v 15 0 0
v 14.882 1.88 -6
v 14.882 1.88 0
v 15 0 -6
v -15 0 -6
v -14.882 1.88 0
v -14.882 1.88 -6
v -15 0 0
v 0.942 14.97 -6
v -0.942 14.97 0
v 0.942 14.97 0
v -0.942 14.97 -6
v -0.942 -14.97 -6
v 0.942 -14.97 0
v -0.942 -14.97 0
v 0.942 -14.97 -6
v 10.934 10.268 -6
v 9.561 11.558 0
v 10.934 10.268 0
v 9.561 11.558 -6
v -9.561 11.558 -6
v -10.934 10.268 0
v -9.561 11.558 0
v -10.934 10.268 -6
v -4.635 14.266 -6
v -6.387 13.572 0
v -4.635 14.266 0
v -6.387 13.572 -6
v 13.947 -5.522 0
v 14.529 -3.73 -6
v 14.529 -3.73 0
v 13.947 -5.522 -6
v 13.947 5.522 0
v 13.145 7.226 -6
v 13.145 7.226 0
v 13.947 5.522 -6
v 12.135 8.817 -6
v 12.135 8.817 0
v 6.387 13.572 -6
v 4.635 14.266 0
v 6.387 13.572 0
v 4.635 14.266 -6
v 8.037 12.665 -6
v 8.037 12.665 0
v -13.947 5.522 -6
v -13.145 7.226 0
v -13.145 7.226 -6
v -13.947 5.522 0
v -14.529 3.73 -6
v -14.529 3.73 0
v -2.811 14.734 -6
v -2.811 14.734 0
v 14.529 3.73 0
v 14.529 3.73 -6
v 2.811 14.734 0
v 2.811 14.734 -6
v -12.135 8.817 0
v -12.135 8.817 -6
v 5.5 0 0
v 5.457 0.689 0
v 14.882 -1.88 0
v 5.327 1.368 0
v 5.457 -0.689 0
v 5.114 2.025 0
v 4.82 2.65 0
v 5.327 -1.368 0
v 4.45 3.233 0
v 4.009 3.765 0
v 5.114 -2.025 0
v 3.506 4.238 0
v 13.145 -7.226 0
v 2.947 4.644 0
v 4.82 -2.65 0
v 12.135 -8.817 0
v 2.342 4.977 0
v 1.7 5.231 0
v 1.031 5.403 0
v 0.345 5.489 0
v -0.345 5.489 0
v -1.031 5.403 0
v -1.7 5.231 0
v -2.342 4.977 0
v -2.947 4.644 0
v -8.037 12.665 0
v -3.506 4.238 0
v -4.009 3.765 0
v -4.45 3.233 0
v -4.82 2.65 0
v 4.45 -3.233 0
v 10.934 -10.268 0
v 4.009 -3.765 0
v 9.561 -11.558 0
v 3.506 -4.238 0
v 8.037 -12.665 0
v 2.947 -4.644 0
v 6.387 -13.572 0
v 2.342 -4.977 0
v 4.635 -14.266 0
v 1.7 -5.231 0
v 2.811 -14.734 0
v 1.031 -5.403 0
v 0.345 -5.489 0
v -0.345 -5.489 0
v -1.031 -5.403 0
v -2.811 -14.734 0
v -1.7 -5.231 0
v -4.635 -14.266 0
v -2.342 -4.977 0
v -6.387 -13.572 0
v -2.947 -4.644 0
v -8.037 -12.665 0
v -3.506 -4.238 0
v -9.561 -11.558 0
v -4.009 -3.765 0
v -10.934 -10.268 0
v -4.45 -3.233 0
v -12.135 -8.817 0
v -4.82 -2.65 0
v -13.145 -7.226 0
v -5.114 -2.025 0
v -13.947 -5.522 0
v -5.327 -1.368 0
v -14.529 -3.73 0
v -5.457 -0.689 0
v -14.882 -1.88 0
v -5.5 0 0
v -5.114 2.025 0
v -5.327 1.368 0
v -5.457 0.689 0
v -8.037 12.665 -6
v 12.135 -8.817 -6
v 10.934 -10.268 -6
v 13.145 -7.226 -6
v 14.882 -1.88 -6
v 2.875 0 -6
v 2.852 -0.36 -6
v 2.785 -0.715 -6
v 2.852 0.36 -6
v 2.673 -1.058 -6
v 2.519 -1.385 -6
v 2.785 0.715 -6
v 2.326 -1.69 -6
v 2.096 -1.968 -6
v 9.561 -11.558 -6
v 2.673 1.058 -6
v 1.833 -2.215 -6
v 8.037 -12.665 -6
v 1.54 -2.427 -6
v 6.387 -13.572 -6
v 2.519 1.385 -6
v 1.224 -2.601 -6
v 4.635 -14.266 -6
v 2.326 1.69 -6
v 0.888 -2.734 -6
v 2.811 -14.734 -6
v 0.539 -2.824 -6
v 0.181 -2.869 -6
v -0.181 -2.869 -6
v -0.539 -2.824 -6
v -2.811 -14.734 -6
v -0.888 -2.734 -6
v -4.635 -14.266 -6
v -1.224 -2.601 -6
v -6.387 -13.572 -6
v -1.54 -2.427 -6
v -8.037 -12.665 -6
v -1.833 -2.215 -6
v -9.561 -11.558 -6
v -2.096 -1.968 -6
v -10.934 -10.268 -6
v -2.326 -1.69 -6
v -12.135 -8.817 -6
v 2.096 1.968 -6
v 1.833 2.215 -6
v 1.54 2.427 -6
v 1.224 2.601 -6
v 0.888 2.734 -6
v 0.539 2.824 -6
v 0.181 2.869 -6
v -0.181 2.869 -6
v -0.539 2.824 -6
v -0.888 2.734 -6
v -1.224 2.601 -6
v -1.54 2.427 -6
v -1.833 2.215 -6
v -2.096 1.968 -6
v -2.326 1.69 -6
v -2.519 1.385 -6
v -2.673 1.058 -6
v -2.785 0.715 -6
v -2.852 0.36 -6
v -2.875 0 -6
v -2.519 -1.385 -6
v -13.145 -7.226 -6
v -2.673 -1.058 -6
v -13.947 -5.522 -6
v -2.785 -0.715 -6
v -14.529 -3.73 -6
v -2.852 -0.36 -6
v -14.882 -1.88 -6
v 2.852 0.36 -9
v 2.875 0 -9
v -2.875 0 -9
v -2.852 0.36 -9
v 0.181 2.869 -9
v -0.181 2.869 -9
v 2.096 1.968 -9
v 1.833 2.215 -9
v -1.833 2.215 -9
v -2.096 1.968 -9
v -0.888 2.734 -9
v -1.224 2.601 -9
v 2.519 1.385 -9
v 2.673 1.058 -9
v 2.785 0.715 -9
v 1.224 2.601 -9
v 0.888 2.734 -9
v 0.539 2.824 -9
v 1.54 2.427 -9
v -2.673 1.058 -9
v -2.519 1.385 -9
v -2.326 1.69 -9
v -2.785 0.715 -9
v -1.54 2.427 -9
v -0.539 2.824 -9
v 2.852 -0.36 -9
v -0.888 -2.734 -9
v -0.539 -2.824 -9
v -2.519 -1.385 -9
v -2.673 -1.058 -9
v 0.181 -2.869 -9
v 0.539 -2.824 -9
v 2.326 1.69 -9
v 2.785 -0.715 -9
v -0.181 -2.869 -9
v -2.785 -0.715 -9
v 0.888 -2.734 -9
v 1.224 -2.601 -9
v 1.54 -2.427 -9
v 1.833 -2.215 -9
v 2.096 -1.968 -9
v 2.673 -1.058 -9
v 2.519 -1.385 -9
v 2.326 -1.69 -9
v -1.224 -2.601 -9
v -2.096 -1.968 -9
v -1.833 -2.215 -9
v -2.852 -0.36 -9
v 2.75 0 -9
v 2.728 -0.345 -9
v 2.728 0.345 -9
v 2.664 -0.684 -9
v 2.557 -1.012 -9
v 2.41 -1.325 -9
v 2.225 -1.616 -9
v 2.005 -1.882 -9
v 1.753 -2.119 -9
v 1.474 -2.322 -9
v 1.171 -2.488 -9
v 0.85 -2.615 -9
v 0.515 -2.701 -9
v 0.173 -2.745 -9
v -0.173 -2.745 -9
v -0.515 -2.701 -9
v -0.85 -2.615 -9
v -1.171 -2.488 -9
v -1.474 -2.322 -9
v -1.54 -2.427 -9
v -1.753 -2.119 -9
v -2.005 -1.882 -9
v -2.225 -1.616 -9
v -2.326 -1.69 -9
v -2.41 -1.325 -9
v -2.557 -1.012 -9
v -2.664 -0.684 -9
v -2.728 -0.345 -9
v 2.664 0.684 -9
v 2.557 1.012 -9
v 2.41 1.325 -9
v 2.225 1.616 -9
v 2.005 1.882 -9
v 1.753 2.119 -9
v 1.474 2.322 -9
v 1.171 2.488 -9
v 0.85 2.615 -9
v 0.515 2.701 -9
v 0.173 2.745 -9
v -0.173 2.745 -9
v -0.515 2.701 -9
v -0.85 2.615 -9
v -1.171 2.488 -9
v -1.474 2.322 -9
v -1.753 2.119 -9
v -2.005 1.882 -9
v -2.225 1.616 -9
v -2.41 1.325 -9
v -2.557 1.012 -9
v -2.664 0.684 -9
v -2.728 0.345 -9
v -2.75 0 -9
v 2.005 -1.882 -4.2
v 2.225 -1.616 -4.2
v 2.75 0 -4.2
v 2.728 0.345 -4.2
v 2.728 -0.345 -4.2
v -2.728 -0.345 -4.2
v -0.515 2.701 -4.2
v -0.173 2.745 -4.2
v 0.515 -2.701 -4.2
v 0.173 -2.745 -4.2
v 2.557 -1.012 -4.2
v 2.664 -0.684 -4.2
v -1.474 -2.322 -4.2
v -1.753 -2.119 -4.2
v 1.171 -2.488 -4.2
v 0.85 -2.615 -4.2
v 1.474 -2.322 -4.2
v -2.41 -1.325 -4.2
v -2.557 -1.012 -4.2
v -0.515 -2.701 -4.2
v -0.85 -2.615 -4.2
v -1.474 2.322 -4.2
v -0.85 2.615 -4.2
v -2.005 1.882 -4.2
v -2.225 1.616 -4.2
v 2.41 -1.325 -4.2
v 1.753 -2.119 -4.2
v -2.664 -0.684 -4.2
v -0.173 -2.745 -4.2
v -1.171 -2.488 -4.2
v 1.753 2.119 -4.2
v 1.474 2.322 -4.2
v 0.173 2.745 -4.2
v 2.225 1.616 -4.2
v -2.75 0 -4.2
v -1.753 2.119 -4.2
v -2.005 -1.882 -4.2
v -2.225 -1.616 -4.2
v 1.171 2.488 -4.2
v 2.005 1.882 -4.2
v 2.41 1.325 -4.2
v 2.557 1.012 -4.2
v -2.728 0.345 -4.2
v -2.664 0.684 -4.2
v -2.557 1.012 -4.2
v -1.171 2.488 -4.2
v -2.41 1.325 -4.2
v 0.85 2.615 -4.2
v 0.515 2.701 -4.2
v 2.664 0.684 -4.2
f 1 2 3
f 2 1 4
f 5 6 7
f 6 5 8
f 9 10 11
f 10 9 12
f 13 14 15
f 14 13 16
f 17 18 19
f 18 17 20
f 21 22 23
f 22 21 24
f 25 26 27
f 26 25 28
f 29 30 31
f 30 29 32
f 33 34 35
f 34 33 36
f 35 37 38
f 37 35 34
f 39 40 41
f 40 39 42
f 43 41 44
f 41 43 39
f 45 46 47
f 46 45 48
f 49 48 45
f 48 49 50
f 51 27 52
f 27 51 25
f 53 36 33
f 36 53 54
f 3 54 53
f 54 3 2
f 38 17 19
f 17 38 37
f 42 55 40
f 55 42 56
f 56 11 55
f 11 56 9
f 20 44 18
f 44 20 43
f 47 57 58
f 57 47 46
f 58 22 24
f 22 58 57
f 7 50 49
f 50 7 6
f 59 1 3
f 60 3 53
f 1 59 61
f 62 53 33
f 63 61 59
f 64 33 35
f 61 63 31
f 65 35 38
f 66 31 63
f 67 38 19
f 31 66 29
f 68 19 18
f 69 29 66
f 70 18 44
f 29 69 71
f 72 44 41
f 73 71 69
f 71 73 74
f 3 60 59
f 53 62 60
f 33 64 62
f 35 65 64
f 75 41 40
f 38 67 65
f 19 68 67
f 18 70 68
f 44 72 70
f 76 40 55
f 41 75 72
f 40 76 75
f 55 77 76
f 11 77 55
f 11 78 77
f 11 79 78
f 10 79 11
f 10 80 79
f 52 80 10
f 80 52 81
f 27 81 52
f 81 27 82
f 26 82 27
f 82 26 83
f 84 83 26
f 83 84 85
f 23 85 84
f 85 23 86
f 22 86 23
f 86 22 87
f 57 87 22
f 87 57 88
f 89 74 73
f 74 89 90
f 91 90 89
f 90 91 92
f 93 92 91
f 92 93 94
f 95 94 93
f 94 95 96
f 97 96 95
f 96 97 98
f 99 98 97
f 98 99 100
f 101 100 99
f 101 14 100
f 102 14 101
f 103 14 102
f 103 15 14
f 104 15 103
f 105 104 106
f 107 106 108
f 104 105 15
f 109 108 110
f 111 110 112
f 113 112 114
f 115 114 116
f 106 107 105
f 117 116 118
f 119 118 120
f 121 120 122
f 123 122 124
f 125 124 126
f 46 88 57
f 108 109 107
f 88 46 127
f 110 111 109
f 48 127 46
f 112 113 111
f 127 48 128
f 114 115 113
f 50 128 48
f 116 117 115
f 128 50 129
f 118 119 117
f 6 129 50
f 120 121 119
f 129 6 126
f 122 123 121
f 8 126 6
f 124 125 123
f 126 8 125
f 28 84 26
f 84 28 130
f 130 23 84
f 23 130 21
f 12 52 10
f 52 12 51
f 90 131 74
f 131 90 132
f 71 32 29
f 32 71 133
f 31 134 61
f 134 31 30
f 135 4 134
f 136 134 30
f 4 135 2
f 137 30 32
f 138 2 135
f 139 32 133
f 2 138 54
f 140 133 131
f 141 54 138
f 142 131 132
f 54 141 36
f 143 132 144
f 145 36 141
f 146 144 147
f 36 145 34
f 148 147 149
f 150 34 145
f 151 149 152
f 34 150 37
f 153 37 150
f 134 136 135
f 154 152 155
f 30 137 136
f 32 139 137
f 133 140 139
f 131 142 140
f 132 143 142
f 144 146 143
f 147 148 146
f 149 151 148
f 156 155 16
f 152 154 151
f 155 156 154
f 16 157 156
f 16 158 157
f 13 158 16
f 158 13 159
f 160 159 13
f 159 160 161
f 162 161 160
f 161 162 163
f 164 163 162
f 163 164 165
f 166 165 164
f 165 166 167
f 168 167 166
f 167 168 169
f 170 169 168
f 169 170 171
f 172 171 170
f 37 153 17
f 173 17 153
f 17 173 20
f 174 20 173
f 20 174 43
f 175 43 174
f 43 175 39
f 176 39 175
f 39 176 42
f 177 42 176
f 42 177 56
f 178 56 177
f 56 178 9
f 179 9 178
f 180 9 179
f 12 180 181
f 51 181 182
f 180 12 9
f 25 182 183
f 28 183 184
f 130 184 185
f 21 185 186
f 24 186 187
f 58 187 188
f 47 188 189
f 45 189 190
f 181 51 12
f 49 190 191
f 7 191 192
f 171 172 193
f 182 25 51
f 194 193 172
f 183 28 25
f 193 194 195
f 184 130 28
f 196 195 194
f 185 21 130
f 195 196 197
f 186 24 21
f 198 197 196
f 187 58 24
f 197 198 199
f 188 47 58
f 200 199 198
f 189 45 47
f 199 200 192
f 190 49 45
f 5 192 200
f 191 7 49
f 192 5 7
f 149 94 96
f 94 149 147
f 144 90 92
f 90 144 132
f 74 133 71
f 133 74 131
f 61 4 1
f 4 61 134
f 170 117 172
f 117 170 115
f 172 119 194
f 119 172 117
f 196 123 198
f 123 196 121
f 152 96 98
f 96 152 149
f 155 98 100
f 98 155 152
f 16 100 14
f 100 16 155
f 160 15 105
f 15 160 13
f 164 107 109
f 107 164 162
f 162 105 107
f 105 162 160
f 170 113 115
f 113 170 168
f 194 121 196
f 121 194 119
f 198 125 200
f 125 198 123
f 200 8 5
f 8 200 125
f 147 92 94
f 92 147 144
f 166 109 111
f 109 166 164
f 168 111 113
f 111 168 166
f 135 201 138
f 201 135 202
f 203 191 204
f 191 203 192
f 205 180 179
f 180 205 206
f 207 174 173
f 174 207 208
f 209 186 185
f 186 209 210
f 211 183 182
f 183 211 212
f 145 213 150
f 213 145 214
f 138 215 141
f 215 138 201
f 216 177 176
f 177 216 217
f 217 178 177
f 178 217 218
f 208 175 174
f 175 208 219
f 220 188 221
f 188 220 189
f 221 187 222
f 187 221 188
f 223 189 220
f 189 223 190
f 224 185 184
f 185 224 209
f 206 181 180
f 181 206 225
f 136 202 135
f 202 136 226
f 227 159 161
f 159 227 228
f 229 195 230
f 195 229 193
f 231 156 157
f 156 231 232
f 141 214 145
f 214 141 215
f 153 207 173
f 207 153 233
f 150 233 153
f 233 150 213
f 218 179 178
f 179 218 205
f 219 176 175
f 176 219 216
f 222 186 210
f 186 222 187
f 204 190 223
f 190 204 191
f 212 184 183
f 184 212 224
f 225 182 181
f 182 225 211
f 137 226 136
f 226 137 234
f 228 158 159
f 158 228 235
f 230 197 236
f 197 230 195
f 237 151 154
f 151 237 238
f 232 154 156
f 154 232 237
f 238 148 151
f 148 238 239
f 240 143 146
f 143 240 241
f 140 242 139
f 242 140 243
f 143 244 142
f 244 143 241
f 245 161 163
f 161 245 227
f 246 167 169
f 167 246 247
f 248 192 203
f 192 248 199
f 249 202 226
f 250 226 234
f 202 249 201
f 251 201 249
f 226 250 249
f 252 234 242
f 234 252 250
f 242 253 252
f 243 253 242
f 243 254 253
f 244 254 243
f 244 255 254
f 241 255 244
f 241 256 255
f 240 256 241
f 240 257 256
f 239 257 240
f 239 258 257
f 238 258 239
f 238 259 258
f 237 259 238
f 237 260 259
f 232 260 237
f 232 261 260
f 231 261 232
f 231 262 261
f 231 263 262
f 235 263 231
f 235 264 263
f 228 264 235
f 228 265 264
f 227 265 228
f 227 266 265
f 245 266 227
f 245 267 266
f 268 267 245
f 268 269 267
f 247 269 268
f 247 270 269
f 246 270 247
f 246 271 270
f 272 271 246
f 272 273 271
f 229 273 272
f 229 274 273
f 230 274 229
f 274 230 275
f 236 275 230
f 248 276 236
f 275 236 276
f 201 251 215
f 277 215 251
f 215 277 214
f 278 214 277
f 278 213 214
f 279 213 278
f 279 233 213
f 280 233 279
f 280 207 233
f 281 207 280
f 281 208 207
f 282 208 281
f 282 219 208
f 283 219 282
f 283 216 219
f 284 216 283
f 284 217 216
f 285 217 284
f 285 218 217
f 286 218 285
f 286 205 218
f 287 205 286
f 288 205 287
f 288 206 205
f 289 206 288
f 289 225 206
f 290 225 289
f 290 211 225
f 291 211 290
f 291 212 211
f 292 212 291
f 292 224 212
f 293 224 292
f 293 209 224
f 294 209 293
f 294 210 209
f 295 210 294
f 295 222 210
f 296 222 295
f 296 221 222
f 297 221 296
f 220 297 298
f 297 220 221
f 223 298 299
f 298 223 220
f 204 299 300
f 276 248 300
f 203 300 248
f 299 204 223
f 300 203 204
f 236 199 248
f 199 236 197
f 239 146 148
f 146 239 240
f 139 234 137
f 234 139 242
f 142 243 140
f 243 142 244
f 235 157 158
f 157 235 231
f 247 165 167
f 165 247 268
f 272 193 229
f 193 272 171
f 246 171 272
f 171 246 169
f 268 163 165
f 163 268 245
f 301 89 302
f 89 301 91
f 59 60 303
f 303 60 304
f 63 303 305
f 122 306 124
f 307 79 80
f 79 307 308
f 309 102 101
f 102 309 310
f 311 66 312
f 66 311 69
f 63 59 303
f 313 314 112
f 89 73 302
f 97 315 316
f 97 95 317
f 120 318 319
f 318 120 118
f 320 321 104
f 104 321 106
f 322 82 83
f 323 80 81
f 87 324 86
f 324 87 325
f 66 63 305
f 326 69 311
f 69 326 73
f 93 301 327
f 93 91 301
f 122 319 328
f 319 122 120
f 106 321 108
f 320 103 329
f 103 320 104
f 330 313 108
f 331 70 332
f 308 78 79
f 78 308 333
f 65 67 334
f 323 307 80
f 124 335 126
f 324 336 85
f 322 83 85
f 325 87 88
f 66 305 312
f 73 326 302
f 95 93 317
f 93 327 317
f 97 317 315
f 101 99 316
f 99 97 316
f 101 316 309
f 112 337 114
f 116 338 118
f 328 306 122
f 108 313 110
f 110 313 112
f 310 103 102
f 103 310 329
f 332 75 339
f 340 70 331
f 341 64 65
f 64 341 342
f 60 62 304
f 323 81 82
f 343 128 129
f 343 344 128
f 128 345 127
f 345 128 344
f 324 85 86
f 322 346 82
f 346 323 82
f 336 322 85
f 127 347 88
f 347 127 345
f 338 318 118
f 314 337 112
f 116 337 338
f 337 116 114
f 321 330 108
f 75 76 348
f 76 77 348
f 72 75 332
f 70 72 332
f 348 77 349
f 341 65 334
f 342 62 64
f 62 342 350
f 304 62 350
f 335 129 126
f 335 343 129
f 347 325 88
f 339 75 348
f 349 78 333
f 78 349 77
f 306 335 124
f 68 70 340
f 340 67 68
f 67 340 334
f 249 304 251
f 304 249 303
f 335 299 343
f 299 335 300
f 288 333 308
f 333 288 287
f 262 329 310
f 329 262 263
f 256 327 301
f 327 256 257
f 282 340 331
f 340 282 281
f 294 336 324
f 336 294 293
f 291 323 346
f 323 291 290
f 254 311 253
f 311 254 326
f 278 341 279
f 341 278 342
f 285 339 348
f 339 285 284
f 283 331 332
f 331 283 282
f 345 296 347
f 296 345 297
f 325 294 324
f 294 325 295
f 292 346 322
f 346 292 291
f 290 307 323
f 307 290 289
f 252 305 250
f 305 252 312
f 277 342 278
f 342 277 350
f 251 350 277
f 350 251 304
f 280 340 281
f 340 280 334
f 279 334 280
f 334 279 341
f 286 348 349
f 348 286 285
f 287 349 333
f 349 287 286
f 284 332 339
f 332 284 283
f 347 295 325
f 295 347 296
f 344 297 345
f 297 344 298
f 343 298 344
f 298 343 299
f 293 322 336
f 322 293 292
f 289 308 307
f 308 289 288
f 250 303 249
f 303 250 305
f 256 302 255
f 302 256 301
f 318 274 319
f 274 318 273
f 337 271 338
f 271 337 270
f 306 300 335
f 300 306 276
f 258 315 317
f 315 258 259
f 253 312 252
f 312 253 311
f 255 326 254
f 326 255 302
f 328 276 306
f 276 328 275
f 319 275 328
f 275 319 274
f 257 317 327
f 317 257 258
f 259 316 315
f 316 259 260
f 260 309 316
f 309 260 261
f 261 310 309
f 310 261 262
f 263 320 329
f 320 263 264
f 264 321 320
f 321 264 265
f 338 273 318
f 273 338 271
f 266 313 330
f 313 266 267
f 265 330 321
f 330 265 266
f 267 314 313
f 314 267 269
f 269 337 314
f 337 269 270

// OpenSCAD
$fn = 50;


difference() {
	union() {
		translate(v = [0, 0, -6.0000000000]) {
			cylinder(h = 6, r = 15.0000000000);
		}
		translate(v = [0, 0, -9.0000000000]) {
			cylinder(h = 9, r = 2.8750000000);
		}
	}
	union() {
		translate(v = [0, 0, 0]) {
			rotate(a = [0, 0, 0]) {
				difference() {
					union() {
						translate(v = [0, 0, -9.0000000000]) {
							cylinder(h = 9, r = 2.2500000000);
						}
						translate(v = [0, 0, -4.2000000000]) {
							cylinder(h = 4.2000000000, r1 = 2.7500000000, r2 = 5.5000000000);
						}
						translate(v = [0, 0, -9.0000000000]) {
							cylinder(h = 9, r = 2.7500000000);
						}
						translate(v = [0, 0, -9.0000000000]) {
							cylinder(h = 9, r = 2.2500000000);
						}
					}
					union();
				}
			}
		}
	}
}
